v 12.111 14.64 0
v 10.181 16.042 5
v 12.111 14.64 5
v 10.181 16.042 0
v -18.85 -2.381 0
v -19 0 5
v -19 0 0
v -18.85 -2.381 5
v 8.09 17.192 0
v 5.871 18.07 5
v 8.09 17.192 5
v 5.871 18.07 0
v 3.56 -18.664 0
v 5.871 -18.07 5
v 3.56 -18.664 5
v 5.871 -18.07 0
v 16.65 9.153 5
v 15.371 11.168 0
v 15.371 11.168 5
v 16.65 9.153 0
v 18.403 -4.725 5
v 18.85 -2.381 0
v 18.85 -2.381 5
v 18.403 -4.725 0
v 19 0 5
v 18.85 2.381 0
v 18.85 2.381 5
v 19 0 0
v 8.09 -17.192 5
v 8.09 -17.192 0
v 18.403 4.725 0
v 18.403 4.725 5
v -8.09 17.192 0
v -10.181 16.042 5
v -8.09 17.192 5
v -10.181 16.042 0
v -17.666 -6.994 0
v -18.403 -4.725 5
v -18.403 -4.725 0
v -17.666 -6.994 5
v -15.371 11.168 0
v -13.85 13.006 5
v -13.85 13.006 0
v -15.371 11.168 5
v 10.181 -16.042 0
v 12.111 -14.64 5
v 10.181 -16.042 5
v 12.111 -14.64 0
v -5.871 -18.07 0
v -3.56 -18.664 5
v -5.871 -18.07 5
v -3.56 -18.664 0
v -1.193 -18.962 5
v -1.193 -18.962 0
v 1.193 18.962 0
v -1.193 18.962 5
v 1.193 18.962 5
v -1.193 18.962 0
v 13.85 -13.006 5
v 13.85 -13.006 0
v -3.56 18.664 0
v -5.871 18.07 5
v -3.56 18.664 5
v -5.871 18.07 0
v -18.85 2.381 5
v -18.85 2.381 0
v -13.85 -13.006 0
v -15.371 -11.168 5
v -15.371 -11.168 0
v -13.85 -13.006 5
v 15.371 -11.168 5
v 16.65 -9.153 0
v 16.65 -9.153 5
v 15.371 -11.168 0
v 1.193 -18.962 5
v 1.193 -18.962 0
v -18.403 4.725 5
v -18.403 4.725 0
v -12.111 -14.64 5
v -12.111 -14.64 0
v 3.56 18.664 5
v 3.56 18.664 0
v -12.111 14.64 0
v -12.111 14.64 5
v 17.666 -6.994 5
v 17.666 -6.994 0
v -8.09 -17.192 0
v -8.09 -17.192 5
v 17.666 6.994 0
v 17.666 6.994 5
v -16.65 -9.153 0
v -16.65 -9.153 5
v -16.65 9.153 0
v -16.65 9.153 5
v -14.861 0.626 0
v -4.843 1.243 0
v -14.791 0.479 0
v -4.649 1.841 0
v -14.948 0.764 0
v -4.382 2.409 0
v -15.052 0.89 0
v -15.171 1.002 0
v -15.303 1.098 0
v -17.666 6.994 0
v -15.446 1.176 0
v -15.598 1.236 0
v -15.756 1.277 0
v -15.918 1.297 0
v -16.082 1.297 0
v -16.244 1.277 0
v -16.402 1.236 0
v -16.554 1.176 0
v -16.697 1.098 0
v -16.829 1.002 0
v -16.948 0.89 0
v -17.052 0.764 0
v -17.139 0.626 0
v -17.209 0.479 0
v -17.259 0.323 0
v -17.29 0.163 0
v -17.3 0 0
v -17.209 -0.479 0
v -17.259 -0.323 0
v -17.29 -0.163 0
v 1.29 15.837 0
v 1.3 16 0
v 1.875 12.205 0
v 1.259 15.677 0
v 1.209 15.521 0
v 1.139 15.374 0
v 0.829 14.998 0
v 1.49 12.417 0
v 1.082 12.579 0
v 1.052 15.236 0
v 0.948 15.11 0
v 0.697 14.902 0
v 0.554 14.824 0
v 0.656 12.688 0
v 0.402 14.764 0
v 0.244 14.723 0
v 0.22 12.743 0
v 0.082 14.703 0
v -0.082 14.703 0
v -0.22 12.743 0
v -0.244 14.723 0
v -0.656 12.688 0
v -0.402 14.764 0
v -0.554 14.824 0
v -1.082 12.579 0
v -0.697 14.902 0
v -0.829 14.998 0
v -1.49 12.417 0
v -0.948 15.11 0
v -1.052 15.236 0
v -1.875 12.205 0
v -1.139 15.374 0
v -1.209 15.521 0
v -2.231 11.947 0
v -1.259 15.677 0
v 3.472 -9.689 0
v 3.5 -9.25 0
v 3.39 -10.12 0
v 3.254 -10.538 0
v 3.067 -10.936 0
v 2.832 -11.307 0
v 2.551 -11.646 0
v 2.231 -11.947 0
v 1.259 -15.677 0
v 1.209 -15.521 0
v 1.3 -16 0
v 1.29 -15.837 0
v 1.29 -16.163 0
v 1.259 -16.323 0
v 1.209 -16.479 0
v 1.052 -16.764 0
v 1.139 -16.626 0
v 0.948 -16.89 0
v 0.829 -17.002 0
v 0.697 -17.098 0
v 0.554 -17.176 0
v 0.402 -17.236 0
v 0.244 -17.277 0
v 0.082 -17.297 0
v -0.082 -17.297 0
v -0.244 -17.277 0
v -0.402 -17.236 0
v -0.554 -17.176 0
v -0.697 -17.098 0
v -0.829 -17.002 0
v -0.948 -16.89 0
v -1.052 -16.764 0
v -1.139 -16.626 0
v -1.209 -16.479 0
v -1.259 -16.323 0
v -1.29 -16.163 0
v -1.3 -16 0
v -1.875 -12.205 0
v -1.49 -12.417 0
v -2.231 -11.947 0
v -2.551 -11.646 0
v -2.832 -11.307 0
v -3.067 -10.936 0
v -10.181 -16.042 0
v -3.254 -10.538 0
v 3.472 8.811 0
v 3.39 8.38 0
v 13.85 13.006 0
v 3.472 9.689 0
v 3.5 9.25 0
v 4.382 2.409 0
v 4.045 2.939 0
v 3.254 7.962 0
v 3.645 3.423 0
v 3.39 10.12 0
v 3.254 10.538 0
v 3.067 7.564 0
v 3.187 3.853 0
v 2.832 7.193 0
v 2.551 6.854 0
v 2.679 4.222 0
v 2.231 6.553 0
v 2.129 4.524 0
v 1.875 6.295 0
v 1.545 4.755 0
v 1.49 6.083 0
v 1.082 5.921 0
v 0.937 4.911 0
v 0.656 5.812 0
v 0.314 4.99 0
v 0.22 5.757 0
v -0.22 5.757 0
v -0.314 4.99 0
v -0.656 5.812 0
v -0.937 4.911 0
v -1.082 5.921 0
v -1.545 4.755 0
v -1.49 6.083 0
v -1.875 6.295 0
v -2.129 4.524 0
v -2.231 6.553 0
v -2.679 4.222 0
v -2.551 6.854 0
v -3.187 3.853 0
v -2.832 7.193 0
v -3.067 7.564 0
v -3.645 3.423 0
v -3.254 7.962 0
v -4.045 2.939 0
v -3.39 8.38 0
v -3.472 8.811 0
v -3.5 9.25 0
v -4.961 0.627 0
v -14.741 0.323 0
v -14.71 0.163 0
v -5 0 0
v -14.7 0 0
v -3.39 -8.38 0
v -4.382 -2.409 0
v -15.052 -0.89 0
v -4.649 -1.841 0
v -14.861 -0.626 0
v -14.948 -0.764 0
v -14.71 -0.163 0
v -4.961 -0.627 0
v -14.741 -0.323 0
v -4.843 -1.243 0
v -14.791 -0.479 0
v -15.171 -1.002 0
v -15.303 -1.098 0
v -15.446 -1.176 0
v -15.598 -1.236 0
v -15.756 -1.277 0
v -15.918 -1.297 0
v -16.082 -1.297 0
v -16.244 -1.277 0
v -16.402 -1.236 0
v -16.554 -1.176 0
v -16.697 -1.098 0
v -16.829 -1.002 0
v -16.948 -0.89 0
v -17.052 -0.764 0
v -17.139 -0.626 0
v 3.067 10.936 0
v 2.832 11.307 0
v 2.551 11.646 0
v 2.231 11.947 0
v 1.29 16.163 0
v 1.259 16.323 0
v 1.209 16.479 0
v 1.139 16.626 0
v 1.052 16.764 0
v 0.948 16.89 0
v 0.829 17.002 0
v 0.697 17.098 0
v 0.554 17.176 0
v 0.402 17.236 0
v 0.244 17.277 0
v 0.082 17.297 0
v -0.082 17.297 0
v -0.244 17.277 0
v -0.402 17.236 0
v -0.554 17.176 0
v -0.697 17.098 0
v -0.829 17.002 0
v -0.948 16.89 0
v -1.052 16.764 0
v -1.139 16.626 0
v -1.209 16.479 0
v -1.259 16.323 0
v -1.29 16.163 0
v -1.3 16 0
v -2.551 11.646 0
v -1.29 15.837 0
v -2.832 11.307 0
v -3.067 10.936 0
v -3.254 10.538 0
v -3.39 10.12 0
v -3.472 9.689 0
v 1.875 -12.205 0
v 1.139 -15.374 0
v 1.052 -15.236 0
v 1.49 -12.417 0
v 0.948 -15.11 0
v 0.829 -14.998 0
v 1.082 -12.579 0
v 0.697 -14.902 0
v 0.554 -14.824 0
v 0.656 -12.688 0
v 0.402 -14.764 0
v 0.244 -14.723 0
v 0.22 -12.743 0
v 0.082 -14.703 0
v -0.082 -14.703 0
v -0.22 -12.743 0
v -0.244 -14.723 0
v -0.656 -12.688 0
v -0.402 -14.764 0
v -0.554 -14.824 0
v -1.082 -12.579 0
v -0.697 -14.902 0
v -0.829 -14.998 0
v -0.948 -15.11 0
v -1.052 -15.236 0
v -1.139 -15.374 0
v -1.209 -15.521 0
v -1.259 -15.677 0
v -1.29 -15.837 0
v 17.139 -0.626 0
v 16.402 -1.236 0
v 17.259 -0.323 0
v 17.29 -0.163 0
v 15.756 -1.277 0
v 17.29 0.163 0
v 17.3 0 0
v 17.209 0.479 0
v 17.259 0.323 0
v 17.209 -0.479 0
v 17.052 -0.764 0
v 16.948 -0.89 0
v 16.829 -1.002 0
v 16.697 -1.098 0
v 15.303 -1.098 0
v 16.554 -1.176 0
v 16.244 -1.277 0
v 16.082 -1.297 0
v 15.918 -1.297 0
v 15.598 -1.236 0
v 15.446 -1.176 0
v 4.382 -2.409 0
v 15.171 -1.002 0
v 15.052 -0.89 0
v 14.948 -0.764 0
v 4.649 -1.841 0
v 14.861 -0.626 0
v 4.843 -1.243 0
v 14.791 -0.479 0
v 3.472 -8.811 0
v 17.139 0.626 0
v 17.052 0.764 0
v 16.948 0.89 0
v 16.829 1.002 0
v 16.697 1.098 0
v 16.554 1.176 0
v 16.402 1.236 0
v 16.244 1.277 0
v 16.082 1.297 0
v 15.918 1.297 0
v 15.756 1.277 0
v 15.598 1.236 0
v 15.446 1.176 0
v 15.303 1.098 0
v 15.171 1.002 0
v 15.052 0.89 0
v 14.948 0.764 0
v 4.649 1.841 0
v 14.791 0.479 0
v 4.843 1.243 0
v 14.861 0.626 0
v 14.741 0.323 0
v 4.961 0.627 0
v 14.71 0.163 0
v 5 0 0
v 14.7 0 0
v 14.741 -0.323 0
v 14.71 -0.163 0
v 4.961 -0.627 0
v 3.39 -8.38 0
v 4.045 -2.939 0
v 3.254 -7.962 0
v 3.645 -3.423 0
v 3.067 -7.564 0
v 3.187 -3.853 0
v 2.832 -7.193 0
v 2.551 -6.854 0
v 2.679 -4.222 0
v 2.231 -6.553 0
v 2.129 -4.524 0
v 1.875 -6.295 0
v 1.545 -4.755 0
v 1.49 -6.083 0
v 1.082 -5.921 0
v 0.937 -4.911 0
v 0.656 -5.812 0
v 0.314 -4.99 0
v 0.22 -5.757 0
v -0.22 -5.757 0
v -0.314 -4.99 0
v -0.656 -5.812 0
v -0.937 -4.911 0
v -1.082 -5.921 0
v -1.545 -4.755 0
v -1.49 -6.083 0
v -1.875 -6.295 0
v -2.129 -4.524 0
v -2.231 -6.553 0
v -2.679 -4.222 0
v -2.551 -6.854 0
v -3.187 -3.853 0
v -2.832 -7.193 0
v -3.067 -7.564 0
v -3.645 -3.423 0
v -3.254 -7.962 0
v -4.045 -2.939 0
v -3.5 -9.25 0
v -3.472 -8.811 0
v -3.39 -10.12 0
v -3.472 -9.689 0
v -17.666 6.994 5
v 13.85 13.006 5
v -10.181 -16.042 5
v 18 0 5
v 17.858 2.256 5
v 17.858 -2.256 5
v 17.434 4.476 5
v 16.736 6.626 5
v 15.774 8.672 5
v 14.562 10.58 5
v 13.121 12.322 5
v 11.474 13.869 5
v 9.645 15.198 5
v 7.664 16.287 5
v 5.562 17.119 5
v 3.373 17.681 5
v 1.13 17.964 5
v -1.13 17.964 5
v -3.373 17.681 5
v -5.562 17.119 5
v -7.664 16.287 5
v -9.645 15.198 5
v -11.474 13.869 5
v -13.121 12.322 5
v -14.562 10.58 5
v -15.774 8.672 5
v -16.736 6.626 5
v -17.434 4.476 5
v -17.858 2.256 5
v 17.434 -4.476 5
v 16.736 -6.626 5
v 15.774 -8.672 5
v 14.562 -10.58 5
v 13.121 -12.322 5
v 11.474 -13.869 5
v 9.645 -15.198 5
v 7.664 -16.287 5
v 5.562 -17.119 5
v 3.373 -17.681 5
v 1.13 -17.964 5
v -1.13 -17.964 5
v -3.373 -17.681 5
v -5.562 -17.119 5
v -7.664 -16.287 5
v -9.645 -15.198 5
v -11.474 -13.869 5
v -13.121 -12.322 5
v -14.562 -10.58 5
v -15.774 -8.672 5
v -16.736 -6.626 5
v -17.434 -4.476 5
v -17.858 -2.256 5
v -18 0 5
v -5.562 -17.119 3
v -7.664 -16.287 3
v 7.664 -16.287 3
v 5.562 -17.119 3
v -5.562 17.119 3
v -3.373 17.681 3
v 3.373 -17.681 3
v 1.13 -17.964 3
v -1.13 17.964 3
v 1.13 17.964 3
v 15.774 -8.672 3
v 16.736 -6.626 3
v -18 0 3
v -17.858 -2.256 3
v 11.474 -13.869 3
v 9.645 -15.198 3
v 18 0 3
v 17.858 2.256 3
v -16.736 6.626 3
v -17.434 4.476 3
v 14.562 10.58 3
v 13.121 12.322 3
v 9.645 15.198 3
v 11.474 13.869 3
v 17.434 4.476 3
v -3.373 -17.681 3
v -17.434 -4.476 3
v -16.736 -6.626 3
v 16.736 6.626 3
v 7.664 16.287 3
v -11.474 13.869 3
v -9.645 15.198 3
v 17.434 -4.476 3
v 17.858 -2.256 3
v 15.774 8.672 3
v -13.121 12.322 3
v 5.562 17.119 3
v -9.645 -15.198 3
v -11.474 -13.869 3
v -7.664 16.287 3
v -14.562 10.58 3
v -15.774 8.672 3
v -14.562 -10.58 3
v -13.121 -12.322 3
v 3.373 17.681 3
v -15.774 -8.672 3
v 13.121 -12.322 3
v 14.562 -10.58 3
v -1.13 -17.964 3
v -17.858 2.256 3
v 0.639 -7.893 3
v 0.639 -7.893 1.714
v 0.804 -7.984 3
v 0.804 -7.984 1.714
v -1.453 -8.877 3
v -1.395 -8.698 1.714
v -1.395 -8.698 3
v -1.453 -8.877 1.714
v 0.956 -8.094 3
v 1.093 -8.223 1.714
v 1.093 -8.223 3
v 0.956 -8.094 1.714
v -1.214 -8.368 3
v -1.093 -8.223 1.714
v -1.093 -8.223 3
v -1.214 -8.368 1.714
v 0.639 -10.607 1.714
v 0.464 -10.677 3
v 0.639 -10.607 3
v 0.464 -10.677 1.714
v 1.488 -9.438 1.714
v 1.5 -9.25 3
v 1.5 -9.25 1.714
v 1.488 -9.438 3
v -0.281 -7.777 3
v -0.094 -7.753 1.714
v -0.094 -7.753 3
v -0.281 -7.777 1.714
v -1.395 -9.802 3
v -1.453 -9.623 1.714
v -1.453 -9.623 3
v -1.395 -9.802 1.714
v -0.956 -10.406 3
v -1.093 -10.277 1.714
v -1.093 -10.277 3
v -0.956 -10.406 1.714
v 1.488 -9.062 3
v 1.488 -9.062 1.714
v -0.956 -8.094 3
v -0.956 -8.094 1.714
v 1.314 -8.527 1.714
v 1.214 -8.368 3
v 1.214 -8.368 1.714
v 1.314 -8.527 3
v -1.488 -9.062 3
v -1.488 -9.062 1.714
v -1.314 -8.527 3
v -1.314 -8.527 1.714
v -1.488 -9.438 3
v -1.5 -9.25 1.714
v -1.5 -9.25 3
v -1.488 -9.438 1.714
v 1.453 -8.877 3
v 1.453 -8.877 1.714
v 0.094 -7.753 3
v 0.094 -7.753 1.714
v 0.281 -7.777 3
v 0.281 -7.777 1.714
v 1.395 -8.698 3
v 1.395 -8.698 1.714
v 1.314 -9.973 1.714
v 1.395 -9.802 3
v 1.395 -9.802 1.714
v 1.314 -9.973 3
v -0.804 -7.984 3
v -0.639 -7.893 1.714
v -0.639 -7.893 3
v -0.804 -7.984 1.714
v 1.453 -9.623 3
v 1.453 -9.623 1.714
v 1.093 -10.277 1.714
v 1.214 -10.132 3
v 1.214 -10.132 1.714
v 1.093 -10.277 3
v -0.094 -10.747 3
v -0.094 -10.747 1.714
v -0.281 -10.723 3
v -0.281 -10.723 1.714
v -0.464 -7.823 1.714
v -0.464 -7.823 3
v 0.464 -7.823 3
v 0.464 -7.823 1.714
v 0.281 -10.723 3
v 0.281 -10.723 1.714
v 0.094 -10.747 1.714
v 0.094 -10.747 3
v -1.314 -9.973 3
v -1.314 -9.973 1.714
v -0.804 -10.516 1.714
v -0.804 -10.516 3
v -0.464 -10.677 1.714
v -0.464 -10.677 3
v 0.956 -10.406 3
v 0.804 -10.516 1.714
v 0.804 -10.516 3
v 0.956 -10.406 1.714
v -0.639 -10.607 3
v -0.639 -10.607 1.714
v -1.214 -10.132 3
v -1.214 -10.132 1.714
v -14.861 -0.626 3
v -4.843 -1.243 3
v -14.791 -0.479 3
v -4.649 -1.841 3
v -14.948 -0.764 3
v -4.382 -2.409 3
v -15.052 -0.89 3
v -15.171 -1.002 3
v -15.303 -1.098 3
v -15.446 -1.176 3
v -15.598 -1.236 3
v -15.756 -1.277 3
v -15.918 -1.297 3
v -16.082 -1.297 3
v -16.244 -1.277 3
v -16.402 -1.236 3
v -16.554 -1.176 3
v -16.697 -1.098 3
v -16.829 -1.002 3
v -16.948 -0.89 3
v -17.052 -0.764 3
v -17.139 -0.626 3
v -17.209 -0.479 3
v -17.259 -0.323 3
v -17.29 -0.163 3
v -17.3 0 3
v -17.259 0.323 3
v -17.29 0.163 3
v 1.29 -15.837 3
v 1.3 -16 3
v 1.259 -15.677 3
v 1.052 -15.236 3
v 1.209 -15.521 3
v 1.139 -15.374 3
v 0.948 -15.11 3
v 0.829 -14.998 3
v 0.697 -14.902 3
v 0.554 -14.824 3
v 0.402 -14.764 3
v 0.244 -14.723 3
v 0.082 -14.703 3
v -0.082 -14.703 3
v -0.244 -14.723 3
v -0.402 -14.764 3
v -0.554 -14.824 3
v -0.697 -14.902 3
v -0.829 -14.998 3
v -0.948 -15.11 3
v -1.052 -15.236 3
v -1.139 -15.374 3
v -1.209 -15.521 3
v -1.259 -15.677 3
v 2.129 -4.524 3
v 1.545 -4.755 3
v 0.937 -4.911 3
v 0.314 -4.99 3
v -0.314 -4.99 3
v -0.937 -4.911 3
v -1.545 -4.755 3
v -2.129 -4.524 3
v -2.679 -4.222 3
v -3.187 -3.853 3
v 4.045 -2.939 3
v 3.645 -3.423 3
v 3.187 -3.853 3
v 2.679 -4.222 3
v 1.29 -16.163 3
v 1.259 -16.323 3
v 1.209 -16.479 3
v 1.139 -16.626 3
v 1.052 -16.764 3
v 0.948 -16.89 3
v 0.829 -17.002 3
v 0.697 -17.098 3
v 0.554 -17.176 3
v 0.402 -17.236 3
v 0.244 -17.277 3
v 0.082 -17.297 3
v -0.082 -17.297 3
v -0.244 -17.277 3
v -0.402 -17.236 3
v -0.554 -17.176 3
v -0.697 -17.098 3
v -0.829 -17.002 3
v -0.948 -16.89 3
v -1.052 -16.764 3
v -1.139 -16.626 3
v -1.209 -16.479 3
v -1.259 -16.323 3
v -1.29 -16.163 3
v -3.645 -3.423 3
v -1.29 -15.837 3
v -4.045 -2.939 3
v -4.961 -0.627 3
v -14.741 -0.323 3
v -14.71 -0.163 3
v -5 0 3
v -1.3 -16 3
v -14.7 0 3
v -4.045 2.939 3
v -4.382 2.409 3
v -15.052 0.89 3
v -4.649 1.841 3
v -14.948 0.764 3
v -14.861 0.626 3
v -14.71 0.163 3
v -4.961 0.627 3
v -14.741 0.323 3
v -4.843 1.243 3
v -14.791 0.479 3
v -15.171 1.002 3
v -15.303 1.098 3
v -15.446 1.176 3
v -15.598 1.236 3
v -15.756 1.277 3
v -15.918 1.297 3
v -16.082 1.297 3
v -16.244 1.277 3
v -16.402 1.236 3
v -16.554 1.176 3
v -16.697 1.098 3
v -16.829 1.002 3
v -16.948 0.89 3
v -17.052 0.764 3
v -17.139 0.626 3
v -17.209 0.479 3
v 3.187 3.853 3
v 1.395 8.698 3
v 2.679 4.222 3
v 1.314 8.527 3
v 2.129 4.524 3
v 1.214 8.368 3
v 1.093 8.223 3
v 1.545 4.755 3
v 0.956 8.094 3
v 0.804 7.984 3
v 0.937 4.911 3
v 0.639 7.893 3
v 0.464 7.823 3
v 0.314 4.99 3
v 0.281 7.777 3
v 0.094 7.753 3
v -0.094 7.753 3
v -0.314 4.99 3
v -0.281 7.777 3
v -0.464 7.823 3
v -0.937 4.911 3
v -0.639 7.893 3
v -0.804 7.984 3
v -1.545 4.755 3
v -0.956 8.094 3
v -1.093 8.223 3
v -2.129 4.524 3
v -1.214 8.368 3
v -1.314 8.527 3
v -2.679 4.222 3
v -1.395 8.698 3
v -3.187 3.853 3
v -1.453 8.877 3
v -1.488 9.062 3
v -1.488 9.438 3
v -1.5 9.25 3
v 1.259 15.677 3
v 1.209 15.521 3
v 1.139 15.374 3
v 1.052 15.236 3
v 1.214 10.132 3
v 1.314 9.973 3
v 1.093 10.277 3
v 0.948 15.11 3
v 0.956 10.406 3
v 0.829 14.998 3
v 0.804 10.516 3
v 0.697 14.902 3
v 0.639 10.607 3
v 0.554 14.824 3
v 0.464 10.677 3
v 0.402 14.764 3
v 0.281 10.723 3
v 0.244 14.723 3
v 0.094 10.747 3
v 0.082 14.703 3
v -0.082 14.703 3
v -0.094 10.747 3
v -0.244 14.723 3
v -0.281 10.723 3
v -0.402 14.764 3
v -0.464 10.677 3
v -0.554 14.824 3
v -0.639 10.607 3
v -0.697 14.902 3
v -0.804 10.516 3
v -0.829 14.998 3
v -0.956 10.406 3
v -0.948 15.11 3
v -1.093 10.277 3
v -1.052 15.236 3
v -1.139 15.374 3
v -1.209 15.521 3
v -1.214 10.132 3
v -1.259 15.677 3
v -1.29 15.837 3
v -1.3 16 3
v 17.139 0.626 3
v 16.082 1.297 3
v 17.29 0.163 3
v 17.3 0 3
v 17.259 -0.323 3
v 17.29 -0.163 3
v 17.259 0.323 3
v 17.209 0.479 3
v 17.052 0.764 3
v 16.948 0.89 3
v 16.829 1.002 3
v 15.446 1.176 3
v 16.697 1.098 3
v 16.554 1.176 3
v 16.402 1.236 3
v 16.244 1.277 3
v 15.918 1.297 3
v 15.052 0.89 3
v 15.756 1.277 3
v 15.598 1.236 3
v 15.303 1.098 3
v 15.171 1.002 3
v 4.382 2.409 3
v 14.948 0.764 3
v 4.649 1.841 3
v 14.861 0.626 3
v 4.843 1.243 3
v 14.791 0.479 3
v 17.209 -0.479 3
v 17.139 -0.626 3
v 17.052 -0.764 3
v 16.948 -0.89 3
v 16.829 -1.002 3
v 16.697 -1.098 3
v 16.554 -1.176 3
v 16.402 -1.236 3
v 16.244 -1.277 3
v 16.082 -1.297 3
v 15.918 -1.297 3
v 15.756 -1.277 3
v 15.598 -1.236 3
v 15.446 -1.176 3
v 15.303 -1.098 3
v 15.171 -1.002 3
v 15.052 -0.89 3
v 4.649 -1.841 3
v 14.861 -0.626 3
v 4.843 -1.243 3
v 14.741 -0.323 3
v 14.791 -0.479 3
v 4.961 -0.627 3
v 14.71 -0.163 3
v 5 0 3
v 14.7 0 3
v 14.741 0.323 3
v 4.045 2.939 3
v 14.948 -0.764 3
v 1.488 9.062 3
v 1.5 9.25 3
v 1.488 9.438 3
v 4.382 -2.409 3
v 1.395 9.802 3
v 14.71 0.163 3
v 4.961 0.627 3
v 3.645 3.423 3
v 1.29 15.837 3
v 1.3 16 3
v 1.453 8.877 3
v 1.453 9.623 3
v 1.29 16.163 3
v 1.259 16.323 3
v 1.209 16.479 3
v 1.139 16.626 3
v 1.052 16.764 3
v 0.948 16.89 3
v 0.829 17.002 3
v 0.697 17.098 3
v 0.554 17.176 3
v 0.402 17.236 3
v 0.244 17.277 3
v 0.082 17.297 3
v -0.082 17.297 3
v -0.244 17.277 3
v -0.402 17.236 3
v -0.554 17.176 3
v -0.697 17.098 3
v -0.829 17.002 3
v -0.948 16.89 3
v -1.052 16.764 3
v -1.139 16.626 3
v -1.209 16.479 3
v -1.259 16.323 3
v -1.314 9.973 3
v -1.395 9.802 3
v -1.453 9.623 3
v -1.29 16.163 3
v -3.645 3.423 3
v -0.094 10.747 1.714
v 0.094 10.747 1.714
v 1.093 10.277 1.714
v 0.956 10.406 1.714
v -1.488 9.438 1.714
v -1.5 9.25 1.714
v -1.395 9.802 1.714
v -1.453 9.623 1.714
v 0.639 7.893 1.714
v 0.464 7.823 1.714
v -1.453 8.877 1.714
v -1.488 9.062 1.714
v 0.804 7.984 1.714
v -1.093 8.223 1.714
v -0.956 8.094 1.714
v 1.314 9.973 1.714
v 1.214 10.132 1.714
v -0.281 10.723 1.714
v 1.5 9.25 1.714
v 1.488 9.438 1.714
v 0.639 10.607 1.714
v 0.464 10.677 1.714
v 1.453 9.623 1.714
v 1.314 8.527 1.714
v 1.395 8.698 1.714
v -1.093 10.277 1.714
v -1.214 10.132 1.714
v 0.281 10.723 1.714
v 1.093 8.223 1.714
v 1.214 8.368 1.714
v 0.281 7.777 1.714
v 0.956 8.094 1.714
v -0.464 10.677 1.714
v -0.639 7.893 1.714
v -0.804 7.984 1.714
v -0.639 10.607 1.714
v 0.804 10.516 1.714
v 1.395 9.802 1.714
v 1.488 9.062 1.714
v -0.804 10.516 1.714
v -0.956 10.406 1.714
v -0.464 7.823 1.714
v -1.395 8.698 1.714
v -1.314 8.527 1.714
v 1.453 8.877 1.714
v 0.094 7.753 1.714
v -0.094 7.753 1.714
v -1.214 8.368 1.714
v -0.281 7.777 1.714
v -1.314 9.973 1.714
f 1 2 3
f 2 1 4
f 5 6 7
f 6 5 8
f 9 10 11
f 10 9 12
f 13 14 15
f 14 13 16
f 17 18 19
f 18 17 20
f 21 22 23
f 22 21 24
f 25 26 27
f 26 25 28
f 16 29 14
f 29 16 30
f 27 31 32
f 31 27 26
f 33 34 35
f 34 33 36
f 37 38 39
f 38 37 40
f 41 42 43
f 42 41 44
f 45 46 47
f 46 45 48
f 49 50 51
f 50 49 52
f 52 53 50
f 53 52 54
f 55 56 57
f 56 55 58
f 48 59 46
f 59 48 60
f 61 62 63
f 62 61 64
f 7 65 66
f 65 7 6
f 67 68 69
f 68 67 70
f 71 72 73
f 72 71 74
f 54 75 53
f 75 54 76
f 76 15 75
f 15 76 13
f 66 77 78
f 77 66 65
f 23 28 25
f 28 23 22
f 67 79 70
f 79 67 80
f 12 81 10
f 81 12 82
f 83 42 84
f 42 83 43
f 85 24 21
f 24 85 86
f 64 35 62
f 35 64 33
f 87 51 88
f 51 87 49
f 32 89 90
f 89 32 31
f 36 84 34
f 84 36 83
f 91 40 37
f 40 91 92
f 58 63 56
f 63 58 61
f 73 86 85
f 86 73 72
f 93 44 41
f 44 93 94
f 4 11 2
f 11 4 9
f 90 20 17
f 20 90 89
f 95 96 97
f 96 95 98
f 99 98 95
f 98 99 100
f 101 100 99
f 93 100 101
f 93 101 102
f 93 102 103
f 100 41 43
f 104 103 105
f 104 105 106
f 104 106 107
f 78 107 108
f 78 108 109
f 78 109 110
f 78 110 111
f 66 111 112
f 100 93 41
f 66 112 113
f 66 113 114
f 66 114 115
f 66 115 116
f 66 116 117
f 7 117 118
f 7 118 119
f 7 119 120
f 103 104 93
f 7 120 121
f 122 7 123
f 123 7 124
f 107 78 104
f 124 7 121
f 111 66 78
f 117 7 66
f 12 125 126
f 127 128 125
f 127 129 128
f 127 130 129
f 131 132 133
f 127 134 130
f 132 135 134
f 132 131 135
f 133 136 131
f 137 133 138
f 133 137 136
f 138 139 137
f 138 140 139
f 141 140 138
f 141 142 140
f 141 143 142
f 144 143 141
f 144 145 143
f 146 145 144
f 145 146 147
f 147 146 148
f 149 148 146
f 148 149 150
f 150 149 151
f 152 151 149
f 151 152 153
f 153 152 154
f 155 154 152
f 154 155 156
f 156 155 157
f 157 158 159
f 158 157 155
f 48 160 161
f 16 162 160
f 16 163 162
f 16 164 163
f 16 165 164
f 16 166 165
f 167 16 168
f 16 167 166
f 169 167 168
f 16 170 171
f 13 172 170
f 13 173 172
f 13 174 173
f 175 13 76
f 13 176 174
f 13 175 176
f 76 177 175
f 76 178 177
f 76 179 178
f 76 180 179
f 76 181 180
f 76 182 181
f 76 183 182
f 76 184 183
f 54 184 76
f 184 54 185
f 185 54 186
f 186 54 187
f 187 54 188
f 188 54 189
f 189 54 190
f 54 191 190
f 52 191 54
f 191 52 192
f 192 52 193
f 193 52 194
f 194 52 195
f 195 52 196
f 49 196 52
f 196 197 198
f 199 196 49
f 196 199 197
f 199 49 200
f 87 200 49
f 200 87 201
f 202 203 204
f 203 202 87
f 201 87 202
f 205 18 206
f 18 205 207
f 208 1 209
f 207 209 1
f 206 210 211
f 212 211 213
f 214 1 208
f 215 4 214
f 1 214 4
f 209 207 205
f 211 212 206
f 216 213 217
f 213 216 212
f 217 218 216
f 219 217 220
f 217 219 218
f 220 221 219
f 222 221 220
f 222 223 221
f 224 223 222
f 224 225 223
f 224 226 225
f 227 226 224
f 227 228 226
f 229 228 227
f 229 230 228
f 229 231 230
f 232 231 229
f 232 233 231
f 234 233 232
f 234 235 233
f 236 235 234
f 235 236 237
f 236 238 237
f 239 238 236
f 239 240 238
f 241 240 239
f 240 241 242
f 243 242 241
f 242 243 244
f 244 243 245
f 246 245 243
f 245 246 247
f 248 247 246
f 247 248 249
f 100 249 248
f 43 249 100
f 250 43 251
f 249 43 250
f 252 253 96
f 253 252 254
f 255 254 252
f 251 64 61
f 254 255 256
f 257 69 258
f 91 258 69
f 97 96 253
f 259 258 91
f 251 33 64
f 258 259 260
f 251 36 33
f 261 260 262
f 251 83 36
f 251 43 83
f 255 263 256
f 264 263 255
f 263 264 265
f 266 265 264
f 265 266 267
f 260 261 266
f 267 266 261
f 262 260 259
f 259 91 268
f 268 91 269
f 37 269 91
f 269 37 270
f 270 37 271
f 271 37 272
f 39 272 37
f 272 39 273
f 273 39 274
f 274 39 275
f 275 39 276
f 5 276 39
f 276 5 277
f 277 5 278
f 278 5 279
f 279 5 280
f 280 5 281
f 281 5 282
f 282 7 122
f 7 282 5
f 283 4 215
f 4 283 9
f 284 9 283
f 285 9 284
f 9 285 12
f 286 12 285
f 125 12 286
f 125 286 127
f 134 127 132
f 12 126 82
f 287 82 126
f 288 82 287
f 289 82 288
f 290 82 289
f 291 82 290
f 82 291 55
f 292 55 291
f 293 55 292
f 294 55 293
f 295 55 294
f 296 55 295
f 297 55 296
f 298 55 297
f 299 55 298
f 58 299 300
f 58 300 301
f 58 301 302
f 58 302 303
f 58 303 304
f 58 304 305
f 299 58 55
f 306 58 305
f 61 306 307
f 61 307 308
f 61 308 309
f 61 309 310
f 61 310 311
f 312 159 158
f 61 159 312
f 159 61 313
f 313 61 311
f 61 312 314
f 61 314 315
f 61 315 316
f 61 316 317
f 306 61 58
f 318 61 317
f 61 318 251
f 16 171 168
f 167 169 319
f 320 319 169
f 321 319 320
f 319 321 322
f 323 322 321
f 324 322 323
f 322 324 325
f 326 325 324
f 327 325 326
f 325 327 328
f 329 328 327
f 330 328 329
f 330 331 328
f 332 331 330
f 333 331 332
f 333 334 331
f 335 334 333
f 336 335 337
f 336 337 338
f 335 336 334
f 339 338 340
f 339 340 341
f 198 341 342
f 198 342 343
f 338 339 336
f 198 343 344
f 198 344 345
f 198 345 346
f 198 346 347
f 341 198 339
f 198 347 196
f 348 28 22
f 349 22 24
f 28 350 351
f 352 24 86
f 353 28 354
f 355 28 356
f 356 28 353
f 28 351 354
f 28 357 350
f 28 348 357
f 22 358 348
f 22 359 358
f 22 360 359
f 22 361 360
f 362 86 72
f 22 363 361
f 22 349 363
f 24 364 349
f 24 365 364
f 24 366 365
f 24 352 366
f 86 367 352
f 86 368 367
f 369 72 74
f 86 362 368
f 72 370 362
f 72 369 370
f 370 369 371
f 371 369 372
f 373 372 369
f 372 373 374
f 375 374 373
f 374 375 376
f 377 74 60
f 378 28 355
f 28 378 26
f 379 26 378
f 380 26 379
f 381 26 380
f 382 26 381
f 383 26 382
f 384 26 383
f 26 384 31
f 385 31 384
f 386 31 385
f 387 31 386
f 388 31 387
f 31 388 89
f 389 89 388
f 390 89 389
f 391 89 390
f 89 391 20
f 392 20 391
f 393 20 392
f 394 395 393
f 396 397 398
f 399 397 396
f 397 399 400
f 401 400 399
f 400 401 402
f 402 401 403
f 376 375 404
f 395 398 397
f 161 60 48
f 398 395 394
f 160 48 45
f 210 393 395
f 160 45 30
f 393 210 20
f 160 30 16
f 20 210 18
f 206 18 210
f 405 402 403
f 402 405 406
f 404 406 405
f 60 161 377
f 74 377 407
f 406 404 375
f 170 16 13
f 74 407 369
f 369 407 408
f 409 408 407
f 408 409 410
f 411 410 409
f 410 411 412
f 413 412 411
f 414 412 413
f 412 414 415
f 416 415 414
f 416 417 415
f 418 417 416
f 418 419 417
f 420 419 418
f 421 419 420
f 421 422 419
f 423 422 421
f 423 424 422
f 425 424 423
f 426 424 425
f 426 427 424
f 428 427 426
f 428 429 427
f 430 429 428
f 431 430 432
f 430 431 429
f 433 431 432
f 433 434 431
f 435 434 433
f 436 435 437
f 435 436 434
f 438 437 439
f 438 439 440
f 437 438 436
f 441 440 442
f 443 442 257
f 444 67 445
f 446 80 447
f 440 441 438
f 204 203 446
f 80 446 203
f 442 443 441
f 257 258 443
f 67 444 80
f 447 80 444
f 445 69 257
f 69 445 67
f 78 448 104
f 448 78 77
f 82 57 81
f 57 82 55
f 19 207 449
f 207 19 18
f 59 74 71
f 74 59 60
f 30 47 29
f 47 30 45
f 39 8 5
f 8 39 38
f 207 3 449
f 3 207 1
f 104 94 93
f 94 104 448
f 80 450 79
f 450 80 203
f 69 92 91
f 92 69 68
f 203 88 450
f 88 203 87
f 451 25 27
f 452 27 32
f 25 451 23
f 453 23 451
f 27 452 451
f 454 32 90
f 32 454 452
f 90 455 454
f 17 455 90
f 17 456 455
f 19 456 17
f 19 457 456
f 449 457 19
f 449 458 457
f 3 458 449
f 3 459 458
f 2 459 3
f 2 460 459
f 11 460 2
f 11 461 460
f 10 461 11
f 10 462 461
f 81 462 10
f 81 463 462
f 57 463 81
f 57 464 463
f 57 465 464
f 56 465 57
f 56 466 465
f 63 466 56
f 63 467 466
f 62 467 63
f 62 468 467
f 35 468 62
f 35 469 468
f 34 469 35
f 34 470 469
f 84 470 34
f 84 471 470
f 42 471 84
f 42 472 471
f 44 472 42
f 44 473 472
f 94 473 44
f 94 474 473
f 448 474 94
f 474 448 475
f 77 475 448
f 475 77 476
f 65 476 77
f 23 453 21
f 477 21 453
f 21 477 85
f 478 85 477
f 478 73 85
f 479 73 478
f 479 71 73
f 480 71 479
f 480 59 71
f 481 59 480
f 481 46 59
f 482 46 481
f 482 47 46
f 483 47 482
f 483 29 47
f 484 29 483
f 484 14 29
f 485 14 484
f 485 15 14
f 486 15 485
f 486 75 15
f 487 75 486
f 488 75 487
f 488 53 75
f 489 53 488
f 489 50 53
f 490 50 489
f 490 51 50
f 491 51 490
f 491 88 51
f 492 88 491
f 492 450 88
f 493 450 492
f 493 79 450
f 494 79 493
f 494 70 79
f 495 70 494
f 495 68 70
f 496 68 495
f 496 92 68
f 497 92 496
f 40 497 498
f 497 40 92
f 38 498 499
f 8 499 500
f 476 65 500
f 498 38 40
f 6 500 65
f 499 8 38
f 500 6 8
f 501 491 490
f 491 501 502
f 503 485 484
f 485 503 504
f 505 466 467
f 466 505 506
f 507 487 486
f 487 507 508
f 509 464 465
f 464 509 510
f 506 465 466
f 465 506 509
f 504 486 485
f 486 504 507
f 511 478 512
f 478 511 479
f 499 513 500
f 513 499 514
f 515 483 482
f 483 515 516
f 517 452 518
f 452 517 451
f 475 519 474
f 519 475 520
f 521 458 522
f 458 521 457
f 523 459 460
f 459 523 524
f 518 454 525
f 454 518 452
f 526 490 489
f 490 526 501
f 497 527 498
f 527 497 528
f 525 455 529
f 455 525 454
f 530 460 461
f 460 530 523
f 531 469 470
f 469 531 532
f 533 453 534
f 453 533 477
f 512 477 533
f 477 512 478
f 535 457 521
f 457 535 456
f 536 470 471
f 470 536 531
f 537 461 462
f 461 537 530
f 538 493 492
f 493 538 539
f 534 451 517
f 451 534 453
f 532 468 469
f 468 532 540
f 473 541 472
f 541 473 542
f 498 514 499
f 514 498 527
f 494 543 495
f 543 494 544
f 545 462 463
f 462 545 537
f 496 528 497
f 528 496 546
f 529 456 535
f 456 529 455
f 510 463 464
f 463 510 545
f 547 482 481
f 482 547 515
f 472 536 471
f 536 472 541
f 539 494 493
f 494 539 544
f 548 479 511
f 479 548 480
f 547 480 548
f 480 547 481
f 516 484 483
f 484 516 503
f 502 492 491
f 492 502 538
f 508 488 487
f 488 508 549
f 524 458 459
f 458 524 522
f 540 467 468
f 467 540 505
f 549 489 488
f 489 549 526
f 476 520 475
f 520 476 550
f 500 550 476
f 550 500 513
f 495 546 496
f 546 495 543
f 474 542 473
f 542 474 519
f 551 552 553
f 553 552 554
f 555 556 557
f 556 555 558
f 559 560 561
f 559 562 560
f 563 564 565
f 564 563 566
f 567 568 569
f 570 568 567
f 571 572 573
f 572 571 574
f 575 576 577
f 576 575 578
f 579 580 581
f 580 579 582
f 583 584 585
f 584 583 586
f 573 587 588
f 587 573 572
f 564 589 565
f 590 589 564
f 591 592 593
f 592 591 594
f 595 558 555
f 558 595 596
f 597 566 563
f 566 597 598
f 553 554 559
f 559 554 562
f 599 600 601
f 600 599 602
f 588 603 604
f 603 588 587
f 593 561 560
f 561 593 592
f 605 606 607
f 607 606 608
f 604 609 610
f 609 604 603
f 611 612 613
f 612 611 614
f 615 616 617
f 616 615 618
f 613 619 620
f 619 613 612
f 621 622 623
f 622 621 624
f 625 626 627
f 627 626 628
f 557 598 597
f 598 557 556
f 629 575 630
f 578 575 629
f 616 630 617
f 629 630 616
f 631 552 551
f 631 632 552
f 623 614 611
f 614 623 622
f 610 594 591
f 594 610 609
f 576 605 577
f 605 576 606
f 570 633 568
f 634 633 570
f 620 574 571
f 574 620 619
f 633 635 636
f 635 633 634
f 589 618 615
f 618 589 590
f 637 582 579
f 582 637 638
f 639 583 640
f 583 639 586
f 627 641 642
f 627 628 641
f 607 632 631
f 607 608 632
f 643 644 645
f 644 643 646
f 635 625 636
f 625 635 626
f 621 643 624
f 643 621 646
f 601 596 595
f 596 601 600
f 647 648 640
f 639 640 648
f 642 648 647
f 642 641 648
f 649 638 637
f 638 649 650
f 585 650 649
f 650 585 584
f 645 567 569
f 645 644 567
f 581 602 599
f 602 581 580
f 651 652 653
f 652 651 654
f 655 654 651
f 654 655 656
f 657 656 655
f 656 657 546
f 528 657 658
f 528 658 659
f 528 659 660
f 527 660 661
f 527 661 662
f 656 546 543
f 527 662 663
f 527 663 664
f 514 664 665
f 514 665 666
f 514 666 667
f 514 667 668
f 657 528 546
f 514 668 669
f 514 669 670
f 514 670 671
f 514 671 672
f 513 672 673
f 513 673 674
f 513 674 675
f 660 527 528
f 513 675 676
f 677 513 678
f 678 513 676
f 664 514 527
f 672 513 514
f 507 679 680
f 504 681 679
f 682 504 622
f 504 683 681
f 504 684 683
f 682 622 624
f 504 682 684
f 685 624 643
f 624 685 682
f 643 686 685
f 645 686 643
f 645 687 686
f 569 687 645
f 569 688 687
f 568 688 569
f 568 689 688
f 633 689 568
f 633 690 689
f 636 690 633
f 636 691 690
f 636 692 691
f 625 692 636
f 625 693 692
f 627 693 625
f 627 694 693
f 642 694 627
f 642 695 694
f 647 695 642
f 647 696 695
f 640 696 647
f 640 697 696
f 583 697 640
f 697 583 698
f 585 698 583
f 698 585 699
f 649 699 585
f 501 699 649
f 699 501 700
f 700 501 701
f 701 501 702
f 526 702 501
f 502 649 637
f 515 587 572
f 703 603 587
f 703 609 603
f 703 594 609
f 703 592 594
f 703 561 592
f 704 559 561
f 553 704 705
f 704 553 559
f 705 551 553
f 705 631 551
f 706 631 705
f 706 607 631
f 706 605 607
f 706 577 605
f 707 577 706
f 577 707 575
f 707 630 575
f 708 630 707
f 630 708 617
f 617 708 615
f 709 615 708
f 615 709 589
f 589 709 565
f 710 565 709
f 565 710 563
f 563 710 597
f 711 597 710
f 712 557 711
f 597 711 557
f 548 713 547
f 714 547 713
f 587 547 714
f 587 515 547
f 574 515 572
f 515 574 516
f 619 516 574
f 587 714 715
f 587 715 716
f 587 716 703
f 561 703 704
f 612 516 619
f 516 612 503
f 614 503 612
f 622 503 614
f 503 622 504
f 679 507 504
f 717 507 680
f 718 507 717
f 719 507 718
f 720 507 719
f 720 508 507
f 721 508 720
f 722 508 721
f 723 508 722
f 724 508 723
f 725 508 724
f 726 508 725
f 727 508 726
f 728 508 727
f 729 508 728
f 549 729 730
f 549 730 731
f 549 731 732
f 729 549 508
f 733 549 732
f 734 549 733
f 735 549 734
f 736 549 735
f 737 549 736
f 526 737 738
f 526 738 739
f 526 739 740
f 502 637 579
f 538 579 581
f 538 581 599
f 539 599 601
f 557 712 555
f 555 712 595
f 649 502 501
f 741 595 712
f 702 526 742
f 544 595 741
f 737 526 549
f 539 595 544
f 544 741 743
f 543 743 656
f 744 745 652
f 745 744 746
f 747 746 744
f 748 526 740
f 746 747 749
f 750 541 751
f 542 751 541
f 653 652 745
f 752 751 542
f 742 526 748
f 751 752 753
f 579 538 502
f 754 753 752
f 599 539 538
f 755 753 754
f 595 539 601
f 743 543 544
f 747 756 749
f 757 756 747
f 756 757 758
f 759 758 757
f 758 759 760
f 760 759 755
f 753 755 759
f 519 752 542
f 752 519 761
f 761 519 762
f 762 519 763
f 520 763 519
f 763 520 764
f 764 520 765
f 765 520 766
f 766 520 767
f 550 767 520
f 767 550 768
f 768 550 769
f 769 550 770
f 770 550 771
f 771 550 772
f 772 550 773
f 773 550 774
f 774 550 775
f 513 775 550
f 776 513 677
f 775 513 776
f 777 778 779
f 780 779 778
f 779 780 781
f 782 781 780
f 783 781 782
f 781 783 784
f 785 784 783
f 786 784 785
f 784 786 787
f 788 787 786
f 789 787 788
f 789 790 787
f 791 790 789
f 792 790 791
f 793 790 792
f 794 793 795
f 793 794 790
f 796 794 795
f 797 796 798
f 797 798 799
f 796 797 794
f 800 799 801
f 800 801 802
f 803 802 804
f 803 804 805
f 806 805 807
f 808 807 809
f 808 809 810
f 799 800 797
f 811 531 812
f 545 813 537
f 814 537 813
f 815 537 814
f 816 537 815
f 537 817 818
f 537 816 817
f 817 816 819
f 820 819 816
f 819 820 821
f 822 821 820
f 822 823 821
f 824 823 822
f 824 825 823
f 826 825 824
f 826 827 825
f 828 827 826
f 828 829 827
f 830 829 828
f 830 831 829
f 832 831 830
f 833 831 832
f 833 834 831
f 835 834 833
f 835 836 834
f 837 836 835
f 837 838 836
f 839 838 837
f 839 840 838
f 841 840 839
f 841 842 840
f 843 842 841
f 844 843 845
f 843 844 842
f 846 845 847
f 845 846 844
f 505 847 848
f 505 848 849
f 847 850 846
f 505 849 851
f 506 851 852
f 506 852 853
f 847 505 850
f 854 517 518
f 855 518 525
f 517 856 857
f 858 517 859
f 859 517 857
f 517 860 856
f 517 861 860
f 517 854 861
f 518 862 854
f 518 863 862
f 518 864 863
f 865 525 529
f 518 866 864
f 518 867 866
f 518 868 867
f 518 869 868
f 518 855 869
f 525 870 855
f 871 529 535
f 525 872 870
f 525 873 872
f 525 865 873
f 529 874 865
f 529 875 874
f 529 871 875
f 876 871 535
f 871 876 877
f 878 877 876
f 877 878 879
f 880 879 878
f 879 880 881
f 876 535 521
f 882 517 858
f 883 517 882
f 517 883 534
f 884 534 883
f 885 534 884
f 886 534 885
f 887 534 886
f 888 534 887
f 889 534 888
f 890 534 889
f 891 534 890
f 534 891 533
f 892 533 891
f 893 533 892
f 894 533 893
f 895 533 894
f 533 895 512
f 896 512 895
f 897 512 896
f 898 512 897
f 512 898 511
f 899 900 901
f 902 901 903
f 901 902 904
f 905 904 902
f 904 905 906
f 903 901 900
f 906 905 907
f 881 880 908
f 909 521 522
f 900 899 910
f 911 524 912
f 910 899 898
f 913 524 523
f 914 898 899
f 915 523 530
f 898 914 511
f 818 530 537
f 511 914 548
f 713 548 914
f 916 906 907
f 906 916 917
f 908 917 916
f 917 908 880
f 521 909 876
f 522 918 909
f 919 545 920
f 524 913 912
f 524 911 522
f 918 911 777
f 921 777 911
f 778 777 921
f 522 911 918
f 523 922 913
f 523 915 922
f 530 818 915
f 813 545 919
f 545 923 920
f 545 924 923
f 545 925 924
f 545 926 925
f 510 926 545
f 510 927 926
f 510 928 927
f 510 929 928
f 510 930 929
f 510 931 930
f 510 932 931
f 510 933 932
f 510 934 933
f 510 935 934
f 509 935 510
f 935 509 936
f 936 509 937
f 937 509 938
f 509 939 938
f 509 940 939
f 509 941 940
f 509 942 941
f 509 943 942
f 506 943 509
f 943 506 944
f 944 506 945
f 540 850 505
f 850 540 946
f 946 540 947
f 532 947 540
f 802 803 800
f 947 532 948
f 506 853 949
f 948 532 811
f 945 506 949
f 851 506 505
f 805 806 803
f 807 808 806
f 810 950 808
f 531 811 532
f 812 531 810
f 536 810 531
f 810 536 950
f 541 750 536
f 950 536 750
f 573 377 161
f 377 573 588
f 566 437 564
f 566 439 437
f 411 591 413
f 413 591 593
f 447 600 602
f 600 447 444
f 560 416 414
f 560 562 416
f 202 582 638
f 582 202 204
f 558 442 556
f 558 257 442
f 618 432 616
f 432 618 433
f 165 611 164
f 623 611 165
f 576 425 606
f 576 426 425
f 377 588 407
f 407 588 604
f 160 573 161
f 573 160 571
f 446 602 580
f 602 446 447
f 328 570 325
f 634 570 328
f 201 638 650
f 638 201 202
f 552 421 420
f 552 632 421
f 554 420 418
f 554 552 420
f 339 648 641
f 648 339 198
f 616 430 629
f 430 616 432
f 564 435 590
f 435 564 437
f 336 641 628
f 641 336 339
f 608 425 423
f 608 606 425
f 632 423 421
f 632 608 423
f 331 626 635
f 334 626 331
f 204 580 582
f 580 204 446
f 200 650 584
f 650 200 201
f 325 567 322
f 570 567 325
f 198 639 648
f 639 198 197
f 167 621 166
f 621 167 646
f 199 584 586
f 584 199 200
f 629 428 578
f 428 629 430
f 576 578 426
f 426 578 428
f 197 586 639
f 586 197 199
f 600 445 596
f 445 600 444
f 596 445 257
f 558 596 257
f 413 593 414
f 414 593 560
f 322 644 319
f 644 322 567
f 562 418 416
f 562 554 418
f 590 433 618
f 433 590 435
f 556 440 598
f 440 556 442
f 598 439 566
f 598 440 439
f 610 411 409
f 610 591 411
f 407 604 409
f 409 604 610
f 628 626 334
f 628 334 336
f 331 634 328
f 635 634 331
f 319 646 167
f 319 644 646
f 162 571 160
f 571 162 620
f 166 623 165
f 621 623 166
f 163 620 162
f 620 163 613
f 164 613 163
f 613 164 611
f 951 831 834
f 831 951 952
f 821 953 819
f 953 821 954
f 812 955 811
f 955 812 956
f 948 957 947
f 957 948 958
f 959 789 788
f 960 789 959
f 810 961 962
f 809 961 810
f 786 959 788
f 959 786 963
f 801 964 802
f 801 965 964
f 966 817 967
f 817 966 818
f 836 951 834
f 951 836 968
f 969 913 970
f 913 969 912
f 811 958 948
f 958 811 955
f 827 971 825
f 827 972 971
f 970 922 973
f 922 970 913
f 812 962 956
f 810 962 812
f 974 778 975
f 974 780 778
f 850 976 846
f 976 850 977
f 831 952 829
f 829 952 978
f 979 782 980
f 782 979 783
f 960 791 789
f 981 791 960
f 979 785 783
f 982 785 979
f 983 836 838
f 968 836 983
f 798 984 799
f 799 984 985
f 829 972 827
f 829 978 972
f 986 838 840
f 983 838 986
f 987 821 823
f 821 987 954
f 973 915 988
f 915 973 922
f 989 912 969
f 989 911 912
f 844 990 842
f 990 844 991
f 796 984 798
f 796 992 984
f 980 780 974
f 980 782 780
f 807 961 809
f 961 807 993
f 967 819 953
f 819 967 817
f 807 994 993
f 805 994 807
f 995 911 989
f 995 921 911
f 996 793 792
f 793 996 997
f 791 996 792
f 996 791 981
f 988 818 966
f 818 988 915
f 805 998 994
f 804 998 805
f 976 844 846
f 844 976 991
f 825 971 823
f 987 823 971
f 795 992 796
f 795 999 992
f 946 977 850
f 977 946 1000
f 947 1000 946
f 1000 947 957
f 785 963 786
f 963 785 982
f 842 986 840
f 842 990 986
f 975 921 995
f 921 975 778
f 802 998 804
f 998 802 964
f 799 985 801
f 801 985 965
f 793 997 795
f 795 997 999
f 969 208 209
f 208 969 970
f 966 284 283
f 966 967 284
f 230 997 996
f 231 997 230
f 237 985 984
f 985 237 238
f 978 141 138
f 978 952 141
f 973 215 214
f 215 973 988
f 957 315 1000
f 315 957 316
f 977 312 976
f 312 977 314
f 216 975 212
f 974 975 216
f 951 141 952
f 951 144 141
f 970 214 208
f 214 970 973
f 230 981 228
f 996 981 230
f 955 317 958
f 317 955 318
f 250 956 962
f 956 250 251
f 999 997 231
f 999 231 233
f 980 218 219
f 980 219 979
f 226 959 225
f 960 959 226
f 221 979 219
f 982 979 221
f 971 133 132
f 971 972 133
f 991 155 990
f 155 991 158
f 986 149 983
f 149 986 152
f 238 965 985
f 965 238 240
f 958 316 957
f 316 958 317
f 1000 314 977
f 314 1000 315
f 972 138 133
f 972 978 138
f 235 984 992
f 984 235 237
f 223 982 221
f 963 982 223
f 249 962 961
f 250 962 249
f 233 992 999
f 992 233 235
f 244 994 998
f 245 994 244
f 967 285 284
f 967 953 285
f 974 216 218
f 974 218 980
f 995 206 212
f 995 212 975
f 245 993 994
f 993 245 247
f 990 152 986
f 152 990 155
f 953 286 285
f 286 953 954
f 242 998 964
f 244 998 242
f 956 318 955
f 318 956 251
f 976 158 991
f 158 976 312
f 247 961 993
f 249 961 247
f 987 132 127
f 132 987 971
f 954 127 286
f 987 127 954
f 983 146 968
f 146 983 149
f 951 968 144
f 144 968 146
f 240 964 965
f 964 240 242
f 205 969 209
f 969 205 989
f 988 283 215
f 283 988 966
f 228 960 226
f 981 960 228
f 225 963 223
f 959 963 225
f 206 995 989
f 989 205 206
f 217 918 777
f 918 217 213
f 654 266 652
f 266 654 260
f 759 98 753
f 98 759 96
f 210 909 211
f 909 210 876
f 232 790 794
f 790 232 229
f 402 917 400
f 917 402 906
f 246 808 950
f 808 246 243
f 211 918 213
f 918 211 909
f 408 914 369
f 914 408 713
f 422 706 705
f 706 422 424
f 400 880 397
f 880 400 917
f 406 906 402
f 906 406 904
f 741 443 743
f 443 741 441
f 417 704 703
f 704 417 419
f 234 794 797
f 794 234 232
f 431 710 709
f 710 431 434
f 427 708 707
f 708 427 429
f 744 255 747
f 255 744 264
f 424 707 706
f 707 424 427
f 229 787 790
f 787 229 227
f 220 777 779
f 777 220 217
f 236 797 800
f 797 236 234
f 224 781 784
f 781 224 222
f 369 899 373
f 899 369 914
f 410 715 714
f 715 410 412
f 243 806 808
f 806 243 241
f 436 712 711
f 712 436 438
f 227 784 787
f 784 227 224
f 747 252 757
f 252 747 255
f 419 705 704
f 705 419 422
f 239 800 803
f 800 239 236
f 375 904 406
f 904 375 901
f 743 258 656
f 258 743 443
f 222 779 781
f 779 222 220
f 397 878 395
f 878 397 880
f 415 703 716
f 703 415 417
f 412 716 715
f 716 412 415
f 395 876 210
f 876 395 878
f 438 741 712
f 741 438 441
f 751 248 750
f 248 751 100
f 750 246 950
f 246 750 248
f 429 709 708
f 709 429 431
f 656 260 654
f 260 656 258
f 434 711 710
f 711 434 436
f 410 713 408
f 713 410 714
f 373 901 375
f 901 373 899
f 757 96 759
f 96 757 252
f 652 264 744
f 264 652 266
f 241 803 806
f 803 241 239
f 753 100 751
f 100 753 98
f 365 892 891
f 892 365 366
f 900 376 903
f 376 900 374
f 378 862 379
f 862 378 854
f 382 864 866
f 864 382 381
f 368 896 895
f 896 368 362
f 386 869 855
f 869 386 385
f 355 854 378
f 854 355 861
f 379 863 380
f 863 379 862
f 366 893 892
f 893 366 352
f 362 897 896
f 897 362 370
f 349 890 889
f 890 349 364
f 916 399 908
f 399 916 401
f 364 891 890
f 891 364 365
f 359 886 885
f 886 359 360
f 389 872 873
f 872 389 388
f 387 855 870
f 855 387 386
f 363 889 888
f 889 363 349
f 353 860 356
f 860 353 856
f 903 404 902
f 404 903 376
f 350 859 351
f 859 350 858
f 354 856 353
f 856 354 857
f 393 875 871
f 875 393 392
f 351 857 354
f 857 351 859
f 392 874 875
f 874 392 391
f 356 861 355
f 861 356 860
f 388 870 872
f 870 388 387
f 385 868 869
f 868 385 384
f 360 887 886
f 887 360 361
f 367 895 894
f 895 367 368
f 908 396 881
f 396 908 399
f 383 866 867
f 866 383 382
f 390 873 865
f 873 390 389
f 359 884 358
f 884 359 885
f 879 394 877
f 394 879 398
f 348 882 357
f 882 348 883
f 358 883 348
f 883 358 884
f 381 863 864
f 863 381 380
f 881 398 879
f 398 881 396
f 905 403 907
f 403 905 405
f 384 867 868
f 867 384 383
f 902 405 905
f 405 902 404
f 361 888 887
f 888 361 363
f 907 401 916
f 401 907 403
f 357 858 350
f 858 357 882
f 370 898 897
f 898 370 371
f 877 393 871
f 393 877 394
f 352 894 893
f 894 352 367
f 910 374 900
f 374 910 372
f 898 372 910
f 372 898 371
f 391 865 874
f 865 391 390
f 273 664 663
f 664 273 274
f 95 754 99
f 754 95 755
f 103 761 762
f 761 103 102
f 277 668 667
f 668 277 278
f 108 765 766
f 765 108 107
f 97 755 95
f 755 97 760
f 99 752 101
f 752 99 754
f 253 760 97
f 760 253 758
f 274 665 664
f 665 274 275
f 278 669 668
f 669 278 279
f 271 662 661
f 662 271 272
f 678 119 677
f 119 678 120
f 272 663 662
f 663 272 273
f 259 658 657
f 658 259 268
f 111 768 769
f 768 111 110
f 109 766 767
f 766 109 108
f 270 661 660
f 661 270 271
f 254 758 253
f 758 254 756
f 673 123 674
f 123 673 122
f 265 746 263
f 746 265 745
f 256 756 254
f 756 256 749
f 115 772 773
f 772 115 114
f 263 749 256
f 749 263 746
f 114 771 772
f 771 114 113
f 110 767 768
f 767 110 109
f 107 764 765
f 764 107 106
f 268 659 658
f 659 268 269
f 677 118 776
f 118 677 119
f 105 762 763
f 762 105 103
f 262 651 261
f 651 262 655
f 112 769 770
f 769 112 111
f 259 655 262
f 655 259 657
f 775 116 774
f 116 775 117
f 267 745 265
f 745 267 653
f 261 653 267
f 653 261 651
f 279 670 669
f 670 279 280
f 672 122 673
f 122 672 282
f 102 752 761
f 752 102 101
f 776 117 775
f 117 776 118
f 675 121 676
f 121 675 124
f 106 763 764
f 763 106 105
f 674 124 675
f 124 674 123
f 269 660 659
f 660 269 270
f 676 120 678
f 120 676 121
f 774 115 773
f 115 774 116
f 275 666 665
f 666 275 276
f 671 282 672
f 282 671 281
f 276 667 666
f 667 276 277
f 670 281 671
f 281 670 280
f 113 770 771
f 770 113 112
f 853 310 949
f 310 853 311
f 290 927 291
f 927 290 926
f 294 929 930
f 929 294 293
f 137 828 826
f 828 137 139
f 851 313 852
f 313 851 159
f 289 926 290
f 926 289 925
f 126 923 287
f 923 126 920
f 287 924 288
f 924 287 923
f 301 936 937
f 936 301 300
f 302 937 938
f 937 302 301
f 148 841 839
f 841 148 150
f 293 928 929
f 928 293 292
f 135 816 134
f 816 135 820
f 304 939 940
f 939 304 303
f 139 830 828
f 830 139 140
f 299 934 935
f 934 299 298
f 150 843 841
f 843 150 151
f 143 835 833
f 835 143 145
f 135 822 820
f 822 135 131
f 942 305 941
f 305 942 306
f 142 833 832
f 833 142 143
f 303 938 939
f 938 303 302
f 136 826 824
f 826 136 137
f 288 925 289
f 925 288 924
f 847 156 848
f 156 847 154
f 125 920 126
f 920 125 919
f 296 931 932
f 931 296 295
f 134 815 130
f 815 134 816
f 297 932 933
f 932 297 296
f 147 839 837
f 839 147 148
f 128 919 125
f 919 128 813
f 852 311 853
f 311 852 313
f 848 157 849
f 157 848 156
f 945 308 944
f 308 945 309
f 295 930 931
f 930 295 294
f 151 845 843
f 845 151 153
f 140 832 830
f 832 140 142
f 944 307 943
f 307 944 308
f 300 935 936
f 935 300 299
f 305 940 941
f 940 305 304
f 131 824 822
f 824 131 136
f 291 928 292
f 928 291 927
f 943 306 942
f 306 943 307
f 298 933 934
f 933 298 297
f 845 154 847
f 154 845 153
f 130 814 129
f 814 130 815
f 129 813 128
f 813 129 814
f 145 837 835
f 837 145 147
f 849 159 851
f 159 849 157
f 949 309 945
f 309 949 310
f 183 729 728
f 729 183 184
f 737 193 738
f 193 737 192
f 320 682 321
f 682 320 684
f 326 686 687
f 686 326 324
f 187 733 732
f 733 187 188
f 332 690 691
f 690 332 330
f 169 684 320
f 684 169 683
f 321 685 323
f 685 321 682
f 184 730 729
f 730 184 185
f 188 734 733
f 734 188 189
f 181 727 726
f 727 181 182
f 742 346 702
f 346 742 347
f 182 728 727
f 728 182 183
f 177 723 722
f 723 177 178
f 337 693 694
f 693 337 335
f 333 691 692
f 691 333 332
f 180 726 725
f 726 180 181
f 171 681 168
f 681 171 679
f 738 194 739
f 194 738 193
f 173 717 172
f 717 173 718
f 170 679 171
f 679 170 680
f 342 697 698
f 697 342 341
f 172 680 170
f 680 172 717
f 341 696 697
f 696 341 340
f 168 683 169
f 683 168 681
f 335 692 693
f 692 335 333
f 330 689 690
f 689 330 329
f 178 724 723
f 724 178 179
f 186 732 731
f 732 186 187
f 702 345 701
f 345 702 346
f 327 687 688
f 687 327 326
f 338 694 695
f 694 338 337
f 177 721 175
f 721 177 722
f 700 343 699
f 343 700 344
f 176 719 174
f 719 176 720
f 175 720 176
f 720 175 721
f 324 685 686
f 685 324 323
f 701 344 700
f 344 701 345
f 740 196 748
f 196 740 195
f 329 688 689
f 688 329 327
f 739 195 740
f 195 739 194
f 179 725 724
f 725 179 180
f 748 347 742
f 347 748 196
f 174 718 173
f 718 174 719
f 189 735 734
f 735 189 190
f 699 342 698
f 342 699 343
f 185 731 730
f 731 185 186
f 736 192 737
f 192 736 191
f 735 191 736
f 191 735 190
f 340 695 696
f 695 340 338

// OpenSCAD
$fn=50;
zz=3;         // height
w=38;         // unit diam
mw=10;        // motor hole
mrad=18.5/2;    // motor hole
orad=32/2;    // outside hole
mbdiam=3;     // motor bolt diam
obdiam=2.6;     // outside bolt diam

module first() {
difference() {
    cylinder(zz,d=w);
    cylinder(zz,d=mw);

    for (v=[-1,1]) {    
        translate([0,v*mrad,0])cylinder(zz,d=mbdiam);
        translate([0,v*mrad,0])cylinder(zz,d2=0,d1=mbdiam+4);
    }
    
    translate([16,0,0]) cylinder(zz,d=obdiam);
    translate([-16,0,0]) cylinder(zz,d=obdiam);
    translate([0,16,0]) cylinder(zz,d=obdiam);
    translate([0,-16,0])cylinder(zz,d=obdiam);
}
}

difference() {
    cylinder(zz+2,d=w);
    cylinder(zz+2,d=w-2);
}
first();
